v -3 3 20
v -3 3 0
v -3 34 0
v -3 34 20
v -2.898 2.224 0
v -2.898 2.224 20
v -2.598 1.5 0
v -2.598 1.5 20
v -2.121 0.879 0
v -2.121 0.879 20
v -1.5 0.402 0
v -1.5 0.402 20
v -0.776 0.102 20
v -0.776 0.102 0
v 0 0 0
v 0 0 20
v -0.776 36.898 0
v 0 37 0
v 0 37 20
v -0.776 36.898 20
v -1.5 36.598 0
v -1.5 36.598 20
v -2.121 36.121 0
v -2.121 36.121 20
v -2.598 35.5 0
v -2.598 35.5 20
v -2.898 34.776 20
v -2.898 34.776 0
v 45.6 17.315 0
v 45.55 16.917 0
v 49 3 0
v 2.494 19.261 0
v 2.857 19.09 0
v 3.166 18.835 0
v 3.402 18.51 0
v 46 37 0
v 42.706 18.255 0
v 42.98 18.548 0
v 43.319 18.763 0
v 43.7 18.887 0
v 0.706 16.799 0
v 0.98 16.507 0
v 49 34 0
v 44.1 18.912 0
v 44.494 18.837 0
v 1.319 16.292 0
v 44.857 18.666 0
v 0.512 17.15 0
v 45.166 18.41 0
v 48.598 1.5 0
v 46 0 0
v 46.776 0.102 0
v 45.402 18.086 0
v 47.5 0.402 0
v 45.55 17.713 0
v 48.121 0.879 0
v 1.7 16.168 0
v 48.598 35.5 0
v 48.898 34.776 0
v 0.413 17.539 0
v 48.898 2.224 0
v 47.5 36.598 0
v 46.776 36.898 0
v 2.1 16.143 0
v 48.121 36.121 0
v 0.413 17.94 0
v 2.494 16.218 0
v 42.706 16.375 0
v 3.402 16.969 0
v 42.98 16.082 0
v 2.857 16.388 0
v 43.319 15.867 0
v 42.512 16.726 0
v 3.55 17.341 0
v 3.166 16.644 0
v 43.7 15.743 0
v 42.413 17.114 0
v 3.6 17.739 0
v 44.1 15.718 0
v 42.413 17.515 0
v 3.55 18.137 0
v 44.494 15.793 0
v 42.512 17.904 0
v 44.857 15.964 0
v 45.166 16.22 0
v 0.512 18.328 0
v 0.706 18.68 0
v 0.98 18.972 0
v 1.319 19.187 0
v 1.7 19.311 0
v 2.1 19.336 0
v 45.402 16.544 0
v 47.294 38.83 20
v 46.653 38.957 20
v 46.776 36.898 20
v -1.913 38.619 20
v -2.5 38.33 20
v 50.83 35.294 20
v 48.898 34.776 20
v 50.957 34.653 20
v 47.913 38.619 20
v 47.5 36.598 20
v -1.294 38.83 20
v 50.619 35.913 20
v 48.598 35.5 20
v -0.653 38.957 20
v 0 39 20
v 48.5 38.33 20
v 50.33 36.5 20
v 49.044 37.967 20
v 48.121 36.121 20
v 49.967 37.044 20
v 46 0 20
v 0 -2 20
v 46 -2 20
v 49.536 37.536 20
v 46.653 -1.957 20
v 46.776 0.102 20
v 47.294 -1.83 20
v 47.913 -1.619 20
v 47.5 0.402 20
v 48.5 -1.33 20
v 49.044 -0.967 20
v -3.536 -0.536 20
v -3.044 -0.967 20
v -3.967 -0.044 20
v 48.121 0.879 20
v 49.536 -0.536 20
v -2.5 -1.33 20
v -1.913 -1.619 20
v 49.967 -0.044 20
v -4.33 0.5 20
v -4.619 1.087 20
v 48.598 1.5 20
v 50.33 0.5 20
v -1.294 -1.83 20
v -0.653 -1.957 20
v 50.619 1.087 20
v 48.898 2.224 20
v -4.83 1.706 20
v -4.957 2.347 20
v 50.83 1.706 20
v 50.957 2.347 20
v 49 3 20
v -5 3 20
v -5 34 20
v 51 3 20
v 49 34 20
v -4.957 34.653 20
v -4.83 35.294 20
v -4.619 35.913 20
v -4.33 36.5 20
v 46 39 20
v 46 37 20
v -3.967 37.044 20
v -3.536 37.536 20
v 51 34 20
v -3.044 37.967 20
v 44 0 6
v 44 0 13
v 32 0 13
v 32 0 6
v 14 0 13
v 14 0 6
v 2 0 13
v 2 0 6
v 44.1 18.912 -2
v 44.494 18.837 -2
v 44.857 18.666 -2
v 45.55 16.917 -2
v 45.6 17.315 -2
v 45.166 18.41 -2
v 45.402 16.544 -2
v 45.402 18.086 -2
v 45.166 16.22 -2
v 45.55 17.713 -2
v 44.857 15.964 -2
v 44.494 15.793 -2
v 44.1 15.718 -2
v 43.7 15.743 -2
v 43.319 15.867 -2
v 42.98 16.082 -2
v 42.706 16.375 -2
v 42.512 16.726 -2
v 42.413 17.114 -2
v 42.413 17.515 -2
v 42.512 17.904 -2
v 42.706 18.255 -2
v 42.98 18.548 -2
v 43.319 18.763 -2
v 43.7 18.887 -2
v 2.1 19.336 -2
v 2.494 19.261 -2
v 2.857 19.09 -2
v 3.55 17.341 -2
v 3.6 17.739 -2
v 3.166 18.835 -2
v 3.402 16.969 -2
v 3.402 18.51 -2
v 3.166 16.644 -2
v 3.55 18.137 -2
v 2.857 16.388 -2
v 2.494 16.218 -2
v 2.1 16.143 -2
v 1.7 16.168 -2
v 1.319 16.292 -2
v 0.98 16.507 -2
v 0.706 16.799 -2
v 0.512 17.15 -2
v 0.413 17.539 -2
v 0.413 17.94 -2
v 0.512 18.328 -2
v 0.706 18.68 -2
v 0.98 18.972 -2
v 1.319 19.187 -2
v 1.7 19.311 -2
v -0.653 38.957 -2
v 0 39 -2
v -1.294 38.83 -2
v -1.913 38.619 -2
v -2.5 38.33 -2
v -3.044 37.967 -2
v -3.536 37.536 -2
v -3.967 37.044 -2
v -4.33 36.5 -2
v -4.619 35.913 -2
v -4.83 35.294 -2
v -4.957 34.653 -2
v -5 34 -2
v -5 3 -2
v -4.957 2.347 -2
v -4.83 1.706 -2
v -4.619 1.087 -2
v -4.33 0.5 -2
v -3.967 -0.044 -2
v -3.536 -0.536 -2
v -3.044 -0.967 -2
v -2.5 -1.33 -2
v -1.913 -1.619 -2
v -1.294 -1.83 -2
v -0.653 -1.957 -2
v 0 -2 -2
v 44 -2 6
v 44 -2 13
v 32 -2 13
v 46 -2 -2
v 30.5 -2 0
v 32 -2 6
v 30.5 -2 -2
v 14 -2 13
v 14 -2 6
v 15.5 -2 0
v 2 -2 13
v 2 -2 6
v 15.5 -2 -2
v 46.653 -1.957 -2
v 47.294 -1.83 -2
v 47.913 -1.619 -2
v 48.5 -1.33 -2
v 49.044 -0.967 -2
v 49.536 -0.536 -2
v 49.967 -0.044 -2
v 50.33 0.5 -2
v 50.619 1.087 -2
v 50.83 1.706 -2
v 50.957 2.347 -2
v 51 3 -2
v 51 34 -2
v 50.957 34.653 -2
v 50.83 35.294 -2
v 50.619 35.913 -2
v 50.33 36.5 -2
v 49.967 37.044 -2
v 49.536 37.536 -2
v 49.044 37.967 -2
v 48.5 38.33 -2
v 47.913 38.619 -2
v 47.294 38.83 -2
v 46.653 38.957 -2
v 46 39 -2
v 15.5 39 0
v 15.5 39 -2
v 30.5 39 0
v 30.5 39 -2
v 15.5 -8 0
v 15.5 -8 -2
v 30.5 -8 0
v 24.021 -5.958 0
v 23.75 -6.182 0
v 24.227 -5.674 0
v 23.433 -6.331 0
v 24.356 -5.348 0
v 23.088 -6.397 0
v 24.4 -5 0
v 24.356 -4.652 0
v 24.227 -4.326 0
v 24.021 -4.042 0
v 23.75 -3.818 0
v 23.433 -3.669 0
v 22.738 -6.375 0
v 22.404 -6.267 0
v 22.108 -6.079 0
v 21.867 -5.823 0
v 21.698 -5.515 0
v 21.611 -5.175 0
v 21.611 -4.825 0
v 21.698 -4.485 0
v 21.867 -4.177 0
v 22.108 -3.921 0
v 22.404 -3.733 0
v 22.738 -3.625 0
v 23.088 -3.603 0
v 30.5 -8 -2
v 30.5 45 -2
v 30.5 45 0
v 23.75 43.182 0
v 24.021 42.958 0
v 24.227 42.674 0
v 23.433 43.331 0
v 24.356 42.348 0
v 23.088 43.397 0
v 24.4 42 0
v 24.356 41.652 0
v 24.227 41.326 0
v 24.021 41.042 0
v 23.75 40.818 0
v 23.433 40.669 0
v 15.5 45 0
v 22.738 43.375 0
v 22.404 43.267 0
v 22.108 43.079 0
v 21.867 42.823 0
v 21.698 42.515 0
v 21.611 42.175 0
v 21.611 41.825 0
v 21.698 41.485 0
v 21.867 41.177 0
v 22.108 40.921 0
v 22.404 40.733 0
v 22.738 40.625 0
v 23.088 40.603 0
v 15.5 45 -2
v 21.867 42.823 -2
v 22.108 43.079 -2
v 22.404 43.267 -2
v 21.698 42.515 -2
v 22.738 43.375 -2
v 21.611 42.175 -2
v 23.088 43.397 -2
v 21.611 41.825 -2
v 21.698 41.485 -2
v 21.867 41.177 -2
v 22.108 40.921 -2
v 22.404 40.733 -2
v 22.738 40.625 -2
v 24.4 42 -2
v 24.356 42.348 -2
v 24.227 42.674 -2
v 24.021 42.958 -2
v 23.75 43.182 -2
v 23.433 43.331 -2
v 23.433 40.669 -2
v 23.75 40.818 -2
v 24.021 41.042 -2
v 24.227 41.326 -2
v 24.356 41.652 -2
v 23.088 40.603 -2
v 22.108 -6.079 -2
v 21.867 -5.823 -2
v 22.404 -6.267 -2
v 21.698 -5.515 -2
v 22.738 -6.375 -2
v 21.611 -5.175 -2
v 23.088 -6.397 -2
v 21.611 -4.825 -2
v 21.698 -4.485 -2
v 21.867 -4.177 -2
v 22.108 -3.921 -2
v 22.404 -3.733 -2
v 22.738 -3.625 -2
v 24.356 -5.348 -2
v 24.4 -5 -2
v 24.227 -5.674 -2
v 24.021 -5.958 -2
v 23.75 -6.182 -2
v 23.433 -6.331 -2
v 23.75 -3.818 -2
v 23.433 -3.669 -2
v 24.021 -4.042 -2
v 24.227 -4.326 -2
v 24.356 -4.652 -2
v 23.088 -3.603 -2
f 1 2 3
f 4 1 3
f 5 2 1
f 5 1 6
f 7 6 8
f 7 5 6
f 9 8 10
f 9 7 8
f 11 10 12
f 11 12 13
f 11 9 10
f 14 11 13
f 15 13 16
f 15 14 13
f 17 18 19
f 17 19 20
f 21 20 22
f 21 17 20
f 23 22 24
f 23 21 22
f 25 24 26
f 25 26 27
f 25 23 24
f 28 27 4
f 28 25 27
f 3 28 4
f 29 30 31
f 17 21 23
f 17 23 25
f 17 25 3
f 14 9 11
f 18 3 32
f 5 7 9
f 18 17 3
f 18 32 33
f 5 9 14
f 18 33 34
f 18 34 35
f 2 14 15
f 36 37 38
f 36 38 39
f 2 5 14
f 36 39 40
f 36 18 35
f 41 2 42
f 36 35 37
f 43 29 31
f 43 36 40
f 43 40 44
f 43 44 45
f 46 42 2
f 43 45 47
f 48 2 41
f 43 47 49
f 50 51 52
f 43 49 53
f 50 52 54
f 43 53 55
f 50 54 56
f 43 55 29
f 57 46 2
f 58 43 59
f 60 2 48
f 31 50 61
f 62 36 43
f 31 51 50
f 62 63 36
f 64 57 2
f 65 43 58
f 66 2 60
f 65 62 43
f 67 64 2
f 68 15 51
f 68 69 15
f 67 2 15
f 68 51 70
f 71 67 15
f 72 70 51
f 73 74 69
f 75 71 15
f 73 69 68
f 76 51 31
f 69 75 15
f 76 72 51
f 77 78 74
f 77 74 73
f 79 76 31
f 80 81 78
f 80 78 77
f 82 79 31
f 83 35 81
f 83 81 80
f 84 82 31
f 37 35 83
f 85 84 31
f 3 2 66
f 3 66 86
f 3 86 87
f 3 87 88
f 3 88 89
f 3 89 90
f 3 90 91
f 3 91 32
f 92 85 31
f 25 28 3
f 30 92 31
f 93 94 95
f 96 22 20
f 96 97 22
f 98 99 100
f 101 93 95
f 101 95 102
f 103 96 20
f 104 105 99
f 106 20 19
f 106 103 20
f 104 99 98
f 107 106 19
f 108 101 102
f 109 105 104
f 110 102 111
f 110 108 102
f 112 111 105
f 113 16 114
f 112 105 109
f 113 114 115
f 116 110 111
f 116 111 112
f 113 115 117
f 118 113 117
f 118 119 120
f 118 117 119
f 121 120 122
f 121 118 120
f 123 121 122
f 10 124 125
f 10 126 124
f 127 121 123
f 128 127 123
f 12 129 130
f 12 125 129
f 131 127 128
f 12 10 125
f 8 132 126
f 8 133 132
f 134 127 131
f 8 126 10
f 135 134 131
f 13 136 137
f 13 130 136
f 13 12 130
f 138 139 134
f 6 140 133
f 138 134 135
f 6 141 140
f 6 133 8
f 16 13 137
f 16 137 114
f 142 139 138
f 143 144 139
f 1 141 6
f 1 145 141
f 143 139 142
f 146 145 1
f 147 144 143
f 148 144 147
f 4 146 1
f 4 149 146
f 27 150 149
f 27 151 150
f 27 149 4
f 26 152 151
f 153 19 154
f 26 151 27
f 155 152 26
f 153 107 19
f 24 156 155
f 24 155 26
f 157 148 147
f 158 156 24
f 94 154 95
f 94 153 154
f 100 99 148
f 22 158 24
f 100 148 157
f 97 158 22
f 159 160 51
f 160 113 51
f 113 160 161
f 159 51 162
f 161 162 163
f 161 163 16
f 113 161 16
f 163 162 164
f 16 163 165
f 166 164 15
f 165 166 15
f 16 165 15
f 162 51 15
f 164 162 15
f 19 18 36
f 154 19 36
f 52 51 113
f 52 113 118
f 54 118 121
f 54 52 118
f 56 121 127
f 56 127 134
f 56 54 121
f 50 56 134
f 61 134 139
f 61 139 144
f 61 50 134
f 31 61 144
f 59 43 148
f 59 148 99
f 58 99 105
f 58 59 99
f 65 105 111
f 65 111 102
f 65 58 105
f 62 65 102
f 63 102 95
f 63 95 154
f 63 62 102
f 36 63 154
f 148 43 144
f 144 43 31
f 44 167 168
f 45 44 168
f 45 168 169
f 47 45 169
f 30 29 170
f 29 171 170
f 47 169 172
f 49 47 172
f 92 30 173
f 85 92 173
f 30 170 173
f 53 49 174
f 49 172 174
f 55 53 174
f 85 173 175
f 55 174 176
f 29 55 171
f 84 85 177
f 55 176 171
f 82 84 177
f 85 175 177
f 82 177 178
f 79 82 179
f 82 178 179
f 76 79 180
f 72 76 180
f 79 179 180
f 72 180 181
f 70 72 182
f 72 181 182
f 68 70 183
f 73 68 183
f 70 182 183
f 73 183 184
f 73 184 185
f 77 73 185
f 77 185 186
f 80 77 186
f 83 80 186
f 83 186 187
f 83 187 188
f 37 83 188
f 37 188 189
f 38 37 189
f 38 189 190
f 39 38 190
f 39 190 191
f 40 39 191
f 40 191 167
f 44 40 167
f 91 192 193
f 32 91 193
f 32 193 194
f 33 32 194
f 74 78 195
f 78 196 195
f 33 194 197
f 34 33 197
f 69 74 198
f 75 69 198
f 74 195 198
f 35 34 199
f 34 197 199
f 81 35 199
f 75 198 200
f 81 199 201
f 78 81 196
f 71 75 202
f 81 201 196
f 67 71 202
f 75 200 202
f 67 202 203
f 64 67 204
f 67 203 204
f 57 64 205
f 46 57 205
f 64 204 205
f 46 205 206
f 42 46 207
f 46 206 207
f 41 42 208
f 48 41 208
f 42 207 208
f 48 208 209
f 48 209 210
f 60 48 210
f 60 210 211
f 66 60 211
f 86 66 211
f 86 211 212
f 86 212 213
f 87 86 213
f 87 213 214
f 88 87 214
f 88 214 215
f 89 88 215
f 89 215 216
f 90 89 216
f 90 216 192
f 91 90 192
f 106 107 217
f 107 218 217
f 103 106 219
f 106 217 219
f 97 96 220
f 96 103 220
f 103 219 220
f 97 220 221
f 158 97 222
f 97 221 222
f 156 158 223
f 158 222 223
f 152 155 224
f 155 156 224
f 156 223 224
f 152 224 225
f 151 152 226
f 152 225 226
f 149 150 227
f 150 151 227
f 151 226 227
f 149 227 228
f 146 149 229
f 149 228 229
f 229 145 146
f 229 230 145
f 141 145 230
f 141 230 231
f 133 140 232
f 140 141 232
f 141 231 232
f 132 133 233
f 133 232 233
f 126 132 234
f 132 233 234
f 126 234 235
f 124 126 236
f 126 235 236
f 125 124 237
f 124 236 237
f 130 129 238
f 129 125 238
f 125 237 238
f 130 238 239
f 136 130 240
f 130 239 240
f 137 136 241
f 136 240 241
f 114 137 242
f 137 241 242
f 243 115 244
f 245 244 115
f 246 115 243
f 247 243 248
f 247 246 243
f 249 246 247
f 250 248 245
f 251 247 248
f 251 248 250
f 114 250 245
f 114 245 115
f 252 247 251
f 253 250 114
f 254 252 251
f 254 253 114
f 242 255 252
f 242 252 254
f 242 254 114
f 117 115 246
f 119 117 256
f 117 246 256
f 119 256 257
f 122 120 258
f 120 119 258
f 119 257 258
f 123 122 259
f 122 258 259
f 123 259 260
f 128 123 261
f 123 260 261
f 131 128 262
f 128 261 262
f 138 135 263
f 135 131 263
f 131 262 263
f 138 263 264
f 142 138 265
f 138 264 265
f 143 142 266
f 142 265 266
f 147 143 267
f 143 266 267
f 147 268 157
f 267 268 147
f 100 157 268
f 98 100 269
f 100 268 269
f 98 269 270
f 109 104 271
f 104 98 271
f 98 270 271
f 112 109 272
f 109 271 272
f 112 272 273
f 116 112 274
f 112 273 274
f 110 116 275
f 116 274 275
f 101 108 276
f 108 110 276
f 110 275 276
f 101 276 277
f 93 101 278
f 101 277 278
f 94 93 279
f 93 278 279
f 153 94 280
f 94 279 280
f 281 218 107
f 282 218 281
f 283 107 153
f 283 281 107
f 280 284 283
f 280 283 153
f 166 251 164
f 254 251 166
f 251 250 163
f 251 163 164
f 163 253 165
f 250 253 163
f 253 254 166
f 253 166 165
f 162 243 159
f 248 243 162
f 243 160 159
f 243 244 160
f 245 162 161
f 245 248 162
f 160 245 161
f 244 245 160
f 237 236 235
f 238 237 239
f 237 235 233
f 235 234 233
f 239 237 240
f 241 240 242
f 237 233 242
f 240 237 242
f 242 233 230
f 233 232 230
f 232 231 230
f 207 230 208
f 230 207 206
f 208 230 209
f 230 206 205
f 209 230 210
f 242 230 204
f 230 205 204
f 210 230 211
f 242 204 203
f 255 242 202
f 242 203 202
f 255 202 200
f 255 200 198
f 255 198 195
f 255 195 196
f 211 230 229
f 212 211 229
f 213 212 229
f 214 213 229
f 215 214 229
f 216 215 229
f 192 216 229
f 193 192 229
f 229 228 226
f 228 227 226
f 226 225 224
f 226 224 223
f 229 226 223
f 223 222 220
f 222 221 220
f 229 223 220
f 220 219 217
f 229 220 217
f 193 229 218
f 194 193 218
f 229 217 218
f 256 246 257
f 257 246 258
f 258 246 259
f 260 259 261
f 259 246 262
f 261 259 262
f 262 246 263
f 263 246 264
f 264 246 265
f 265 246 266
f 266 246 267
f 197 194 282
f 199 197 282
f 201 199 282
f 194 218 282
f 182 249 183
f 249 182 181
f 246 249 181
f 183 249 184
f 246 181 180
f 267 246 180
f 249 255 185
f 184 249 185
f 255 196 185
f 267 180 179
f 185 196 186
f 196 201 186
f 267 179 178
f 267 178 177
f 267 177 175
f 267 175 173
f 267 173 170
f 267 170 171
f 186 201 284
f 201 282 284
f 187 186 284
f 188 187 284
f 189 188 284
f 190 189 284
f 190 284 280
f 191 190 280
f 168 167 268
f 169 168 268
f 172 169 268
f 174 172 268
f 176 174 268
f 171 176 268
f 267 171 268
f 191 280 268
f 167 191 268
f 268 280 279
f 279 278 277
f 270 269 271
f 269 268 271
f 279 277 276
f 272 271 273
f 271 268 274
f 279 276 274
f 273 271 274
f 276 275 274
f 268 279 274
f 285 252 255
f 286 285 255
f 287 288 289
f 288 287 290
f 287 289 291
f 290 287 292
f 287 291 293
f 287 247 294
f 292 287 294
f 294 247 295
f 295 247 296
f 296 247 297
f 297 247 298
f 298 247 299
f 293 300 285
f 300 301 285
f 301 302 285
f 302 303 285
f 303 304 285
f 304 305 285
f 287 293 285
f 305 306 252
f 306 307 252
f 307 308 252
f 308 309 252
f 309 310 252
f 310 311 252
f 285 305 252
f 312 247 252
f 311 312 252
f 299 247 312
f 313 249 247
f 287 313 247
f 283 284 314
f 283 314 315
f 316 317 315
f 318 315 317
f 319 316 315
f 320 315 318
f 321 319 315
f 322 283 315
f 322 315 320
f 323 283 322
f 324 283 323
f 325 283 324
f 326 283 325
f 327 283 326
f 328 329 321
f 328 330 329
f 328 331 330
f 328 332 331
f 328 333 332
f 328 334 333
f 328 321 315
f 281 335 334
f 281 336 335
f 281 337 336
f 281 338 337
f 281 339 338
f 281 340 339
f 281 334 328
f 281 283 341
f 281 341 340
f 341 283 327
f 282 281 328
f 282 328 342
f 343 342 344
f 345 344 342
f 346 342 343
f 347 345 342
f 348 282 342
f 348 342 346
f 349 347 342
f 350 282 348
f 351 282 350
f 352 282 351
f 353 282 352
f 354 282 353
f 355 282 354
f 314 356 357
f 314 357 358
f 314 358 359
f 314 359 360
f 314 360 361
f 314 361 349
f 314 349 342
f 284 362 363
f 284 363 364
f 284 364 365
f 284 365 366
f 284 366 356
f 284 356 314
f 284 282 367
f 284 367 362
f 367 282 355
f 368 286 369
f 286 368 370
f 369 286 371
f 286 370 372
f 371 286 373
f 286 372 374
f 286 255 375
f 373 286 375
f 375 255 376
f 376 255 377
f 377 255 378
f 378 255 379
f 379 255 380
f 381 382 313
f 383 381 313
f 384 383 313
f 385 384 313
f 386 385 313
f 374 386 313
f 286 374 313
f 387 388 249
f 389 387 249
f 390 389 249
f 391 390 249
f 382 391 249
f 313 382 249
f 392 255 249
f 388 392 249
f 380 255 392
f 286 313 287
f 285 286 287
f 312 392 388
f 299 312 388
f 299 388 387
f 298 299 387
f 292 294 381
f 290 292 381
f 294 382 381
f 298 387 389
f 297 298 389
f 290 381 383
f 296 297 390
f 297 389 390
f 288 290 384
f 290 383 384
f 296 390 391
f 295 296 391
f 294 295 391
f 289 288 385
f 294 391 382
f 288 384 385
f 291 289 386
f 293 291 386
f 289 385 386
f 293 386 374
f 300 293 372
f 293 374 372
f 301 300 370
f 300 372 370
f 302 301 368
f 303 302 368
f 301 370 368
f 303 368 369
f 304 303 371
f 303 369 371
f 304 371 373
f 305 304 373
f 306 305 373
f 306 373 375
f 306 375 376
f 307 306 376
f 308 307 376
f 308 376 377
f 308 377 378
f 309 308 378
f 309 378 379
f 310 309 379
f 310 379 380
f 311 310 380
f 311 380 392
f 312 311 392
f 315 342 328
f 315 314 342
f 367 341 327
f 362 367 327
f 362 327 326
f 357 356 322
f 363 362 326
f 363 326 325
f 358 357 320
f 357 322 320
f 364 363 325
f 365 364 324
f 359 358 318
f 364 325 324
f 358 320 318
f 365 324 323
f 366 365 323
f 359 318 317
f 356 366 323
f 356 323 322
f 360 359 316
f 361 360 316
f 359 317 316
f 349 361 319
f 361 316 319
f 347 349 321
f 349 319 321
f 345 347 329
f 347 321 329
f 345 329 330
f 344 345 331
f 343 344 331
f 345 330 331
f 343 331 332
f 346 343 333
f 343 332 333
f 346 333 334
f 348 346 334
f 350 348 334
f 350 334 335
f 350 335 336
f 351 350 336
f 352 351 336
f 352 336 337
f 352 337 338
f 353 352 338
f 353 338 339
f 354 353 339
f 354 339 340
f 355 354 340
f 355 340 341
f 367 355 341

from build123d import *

# Parameters (mm, degrees)
PAD_DEPTH       = 20
THICKNESS_T     = 2
SKETCH001_W     = 15
SKETCH001_H     = 2
PAD001_DEPTH    = 6
SKETCH002_R     = 1.4
POCKET_DEPTH    = 2.001
SKETCH003_W     = 15
SKETCH003_H     = 2
PAD002_DEPTH    = 6
SKETCH004_R     = 1.4
POCKET001_DEPTH = 22.001
SKETCH005_R     = 1.6
POCKET002_DEPTH = 22.001
SKETCH006_W     = 12
SKETCH006_H     = 7
POCKET003_DEPTH = 2


with BuildPart() as part:
    # Sketch → Pad (new body)
    with BuildSketch(Plane.XY):
        with BuildLine():
            Line((0, 37), (46, 37))
            ThreePointArc((49, 34), (48.1213203436, 36.1213203436), (46, 37))
            Line((49, 34), (49, 3))
            ThreePointArc((46, 0), (48.1213203436, 0.8786796564), (49, 3))
            Line((46, 0), (0, 0))
            ThreePointArc((-3, 3), (-2.1213203436, 0.8786796564), (0, 0))
            Line((-3, 3), (-3, 34))
            ThreePointArc((0, 37), (-2.1213203436, 36.1213203436), (-3, 34))
        make_face()
    extrude(amount=PAD_DEPTH)

    # Thickness
    thickness_openings = [part.faces().sort_by_distance(p)[0] for p in [
        (23, 18.5, 20),
    ]]
    offset(amount=THICKNESS_T, openings=thickness_openings, kind=Kind.INTERSECTION)

    # Sketch001 → Pad001 (new body)
    with BuildSketch(Plane(origin=(0, 39, 0), x_dir=(-1, 0, 0), z_dir=(0, 1, 0))):
        with Locations((-23, -1)):
            Rectangle(SKETCH001_W, SKETCH001_H)
    extrude(amount=PAD001_DEPTH)

    # Sketch002 → Pocket (cut, through all)
    with BuildSketch(Plane.XY):
        with Locations((23, 42)):
            Circle(SKETCH002_R)
    extrude(amount=-POCKET_DEPTH, mode=Mode.SUBTRACT)

    # Sketch003 → Pad002 (new body)
    with BuildSketch(Plane.XZ.offset(2)):
        with Locations((23, -1)):
            Rectangle(SKETCH003_W, SKETCH003_H)
    extrude(amount=PAD002_DEPTH)

    # Sketch004 → Pocket001 (cut, through all)
    with BuildSketch(Plane(origin=(0, 0, -2), x_dir=(1, 0, 0), z_dir=(0, 0, -1))):
        with Locations((23, 5)):
            Circle(SKETCH004_R)
    extrude(amount=-POCKET001_DEPTH, mode=Mode.SUBTRACT)

    # Sketch005 → Pocket002 (cut, through all)
    with BuildSketch(Plane(origin=(0, 0, -2), x_dir=(1, 0, 0), z_dir=(0, 0, -1))):
        with Locations((2, -17.739397)):
            Circle(SKETCH005_R)
        with Locations((44, -17.314964)):
            Circle(SKETCH005_R)
    extrude(amount=-POCKET002_DEPTH, mode=Mode.SUBTRACT)

    # Sketch006 → Pocket003 (cut)
    with BuildSketch(Plane.XZ.offset(2)):
        with Locations((8, 9.5)):
            Rectangle(SKETCH006_W, SKETCH006_H)
        with Locations((38, 9.5)):
            Rectangle(SKETCH006_W, SKETCH006_H)
    extrude(amount=-POCKET003_DEPTH, mode=Mode.SUBTRACT)


solid = part.part
